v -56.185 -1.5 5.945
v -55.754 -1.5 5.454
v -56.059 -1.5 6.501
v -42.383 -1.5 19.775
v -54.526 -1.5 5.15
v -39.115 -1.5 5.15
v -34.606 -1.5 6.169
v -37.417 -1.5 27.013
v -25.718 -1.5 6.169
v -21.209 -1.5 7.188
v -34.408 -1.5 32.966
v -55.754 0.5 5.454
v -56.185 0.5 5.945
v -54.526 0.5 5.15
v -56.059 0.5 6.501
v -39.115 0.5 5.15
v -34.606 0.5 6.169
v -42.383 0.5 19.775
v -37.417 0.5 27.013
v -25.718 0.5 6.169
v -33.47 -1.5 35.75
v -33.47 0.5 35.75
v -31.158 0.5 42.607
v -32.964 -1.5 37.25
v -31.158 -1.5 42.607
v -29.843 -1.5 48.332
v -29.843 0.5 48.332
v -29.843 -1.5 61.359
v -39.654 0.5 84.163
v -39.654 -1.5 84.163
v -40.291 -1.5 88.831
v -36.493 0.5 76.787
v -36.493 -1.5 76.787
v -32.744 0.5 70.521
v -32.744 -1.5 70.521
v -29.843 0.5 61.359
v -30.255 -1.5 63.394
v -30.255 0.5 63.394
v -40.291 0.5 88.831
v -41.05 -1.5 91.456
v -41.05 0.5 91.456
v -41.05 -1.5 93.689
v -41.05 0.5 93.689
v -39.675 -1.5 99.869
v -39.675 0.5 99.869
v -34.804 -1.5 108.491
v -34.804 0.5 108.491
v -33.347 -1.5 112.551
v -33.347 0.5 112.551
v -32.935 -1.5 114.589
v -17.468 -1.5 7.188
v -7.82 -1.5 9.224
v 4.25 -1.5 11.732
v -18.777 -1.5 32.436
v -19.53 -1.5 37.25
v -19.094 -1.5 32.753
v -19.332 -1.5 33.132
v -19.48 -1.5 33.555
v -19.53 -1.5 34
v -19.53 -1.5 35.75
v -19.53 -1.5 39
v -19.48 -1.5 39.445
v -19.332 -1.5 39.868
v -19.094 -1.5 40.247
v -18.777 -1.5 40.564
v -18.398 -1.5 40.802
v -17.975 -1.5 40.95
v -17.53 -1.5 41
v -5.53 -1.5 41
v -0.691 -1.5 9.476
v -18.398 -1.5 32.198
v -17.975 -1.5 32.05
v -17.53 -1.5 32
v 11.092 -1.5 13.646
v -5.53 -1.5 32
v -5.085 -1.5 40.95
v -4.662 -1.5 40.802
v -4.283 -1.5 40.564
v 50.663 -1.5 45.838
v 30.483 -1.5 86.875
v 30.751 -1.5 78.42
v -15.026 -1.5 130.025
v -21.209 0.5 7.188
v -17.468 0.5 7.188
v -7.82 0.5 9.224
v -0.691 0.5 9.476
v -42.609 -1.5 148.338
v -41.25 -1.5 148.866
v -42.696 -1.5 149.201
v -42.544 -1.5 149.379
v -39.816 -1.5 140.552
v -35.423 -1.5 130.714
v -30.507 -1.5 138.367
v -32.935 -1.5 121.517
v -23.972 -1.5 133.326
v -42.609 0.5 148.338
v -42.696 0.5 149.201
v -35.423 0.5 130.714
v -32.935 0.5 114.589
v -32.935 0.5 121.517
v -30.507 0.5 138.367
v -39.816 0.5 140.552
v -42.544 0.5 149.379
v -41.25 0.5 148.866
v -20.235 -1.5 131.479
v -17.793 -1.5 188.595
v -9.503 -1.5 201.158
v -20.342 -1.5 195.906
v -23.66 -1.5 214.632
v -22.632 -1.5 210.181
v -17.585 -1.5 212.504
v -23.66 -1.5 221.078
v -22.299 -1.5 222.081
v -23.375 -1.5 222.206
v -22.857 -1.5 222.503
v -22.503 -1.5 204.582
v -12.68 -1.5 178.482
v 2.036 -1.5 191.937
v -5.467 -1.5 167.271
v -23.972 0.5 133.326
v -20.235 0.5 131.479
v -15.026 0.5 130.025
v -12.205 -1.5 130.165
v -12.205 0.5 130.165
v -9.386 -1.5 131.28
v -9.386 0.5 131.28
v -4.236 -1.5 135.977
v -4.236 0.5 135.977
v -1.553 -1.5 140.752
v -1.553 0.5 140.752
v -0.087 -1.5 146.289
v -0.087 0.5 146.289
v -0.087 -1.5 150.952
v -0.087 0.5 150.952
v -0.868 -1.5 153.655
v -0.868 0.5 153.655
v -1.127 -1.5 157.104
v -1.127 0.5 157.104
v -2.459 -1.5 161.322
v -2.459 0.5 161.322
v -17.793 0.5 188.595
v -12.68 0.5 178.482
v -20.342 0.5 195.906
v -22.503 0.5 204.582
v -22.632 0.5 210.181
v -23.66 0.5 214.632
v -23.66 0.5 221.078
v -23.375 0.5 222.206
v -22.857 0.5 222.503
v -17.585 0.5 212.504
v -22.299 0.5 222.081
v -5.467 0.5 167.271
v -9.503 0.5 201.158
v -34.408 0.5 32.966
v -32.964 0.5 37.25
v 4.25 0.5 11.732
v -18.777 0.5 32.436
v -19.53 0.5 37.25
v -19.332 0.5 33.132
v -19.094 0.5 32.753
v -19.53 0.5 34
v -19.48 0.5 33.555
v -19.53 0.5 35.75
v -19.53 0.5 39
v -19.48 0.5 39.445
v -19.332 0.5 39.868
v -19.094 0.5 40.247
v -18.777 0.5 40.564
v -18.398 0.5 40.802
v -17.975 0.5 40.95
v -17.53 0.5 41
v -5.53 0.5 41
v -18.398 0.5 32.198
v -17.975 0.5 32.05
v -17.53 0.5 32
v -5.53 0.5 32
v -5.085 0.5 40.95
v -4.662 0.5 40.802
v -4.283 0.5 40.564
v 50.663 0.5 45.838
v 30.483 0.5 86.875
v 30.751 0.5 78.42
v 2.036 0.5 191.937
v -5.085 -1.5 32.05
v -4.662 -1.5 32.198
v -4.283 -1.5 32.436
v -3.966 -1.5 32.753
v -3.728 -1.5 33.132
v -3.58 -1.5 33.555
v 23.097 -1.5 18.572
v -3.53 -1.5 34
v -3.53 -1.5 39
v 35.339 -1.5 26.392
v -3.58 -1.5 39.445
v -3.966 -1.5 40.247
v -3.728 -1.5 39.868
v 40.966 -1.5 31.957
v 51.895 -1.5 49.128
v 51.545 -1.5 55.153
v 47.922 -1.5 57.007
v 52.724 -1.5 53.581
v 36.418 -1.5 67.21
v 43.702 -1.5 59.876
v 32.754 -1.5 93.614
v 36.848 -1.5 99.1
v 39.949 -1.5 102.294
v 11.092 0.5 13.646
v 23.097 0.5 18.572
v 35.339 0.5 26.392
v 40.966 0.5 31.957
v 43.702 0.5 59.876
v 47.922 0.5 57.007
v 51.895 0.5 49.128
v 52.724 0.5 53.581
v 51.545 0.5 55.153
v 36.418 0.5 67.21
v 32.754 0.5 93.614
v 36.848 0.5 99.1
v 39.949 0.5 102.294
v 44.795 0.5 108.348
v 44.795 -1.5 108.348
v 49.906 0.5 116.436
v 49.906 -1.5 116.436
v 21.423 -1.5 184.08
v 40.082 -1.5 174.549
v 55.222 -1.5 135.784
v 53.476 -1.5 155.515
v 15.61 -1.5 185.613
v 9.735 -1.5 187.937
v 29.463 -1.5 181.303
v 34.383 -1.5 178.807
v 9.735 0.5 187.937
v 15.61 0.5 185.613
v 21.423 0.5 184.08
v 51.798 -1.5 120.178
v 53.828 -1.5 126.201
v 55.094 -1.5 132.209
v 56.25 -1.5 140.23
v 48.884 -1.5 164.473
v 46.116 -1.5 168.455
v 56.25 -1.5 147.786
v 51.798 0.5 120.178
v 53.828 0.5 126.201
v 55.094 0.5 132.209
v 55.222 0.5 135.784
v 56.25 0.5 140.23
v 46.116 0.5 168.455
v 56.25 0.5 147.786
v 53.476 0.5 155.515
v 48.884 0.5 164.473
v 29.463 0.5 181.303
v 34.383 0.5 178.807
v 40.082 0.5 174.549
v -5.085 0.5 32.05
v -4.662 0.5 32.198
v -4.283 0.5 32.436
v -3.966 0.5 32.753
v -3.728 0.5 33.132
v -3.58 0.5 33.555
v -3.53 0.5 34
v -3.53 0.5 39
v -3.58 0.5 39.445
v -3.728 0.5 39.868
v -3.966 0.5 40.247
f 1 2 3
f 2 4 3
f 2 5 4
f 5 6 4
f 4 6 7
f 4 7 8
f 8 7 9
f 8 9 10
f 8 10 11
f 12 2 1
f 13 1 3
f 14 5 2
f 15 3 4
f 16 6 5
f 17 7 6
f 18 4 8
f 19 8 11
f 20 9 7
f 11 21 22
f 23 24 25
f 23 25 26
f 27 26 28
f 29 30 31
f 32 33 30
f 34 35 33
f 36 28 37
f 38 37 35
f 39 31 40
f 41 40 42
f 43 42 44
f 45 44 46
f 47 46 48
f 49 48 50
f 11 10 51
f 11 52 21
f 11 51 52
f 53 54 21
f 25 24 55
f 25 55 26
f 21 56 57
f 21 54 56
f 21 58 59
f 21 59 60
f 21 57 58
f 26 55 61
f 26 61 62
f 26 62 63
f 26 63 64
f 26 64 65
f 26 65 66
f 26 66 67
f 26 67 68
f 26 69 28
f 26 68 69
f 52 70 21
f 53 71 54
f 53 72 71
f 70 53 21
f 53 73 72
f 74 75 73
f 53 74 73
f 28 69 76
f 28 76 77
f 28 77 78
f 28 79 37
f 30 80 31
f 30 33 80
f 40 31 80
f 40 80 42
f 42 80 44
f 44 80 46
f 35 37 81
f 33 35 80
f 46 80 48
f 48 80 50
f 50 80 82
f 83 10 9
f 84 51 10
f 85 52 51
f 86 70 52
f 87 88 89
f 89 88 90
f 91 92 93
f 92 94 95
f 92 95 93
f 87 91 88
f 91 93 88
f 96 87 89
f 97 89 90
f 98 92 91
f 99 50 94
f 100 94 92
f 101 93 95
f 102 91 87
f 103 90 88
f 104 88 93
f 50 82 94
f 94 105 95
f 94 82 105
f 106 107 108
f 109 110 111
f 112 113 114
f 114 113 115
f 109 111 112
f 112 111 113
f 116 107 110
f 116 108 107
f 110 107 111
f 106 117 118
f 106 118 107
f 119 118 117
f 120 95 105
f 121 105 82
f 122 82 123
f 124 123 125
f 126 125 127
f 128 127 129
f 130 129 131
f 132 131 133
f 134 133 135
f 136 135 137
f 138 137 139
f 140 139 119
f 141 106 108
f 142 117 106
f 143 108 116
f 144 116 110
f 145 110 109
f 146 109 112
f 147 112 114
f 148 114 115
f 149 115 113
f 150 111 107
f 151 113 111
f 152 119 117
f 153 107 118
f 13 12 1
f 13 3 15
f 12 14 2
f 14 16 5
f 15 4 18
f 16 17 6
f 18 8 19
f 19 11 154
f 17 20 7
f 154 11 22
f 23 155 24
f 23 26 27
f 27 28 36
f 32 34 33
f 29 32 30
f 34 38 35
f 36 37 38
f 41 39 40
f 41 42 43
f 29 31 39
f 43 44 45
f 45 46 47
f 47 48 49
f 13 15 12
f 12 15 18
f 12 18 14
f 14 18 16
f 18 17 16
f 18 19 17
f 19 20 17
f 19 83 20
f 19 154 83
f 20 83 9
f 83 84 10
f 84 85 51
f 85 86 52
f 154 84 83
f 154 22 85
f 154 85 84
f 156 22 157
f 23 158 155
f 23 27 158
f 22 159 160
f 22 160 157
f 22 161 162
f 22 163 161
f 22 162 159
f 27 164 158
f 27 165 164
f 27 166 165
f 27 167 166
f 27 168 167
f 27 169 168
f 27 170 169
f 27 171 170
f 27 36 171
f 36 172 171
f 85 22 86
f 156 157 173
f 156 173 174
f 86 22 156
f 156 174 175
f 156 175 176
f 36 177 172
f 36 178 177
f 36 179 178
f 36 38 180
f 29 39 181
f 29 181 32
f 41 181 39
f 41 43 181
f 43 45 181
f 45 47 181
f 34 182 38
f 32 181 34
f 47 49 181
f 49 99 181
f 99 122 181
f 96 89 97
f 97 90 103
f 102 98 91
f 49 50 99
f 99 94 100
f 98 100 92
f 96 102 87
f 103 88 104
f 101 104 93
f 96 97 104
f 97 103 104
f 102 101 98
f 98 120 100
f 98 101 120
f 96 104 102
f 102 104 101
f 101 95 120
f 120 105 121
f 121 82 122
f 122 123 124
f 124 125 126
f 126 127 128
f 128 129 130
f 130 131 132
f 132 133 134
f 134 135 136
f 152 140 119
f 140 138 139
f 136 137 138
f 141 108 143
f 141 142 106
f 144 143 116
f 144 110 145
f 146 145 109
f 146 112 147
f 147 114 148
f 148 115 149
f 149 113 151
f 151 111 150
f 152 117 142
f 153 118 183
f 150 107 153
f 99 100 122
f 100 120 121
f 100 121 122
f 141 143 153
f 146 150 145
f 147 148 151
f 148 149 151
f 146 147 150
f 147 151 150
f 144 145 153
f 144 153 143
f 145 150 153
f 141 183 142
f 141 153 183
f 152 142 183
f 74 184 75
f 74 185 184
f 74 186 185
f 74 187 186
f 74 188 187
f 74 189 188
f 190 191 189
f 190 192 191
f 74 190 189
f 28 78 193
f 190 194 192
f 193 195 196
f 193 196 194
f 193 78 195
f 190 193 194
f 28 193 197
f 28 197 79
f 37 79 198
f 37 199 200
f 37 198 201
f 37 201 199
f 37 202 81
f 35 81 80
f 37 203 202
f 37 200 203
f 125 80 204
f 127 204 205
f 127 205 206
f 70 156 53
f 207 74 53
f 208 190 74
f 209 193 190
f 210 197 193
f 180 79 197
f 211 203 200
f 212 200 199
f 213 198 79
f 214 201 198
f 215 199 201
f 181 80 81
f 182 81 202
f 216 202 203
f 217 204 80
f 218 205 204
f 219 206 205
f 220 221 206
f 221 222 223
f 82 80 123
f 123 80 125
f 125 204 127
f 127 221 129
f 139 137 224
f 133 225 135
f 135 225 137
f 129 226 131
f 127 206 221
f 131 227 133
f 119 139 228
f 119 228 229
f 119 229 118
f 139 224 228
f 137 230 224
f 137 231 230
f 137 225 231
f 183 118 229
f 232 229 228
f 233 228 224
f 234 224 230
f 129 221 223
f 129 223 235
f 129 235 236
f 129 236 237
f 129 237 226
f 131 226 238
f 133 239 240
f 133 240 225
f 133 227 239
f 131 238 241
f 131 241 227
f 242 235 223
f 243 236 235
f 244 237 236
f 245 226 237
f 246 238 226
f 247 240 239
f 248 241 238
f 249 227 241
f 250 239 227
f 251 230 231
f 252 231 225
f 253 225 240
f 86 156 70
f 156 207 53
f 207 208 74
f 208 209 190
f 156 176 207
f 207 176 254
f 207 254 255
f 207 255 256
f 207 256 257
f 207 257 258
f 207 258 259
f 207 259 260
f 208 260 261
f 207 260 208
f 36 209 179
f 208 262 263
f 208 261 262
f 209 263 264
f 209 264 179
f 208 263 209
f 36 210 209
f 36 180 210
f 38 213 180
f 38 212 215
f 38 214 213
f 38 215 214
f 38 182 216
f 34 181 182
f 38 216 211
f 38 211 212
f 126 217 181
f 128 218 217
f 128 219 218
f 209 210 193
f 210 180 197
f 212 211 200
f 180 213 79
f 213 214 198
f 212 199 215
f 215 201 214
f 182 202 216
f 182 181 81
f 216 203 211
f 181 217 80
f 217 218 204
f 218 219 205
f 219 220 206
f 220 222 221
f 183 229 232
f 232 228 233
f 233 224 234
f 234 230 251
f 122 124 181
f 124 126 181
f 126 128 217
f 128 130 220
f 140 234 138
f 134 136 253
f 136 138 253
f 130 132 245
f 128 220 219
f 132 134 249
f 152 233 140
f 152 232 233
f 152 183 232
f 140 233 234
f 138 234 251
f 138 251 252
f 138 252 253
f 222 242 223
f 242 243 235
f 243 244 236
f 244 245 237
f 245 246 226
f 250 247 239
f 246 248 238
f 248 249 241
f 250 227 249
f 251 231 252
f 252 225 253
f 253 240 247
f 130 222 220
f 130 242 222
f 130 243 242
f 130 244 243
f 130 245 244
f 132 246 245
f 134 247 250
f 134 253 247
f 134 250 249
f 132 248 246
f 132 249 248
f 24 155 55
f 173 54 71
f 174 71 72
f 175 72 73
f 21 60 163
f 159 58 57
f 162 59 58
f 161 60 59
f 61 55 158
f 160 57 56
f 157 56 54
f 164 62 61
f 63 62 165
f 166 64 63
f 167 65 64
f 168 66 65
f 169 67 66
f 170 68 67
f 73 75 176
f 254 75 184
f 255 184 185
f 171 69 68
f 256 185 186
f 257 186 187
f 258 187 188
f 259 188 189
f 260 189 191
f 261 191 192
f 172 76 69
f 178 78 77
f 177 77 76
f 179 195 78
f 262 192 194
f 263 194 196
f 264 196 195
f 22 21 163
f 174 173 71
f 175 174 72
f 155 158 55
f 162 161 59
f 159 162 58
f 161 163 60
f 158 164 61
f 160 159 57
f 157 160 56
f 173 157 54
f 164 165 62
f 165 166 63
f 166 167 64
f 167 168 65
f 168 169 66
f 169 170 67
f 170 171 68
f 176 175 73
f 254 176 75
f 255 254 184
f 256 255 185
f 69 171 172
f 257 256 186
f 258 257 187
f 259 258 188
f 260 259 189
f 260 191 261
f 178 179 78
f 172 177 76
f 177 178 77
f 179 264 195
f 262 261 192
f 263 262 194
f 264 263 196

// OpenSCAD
// file: shape_pts.scad
// Right Flame (FR) traced from images/generate_an_image_of_this.png via octolamp-lamp-base.
// Exterior housing: 120.00 x 225.00 mm (114.00 x 219.00 mm interior cavity + 3.00 mm Octolamp wall).
// Matches the 1.5x flame-to-letter height proportion next to the 100 x 150 mm Engenesis letters.

shape_w = 114.00;
shape_h = 219.00;
rec_chip_x = -12.00;
rec_chip_z = 62.00;
rec_cable_x = -12.00;
rec_ziptie_z = 33.50;
rec_keyhole_z = 19.50;
rec_slit_dir = -1;
rec_snap_top_x = -14.50;
rec_snap_top_z = 126.40;
rec_snap_bot_x = -42.00;
rec_clip_x = -38.00;
rec_pillars = [[18.0, 88.0], [12.0, 44.0], [26.0, 128.0], [12.0, 164.0]];

shape_pts = [[-57.000,1.338],[-56.163,0.382],[-54.617,0.000],[-39.031,0.000],[-34.522,1.019],[-25.634,1.019],[-21.125,2.038],[-17.390,2.038],[-7.729,4.077],[-0.515,4.332],[4.508,6.625],[11.336,8.536],[23.444,13.504],[35.810,21.403],[41.542,27.072],[51.332,41.086],[52.620,44.526],[53.522,49.367],[52.041,51.342],[48.305,53.253],[44.183,56.056],[37.034,63.254],[31.495,74.210],[31.237,82.364],[33.427,88.861],[37.420,94.212],[40.512,97.397],[45.407,103.512],[50.559,111.666],[52.492,115.488],[54.553,121.603],[55.841,127.718],[55.969,131.285],[57.000,135.744],[57.000,143.516],[54.166,151.414],[49.529,160.460],[46.695,164.537],[40.576,170.716],[34.780,175.047],[29.756,177.595],[21.641,180.398],[15.844,181.927],[10.047,184.220],[2.447,188.169],[-8.953,197.278],[-16.939,208.490],[-21.705,218.172],[-22.800,219.000],[-24.024,218.299],[-24.410,216.771],[-24.410,210.146],[-23.380,205.687],[-23.251,200.081],[-21.061,191.291],[-18.485,183.901],[-13.332,173.709],[-6.119,162.498],[-3.156,156.638],[-1.868,152.561],[-1.610,149.121],[-0.837,146.446],[-0.837,141.987],[-2.254,136.636],[-4.831,132.050],[-9.790,127.527],[-12.366,126.508],[-14.942,126.380],[-19.966,127.782],[-23.573,129.565],[-30.014,134.534],[-40.834,145.108],[-42.766,145.873],[-43.475,145.045],[-43.346,143.771],[-40.512,135.872],[-36.132,126.062],[-33.685,117.017],[-33.685,110.264],[-34.071,108.353],[-35.488,104.404],[-40.383,95.741],[-41.800,89.371],[-41.800,86.950],[-41.027,84.275],[-40.383,79.561],[-37.163,72.045],[-33.427,65.802],[-30.980,58.795],[-30.593,56.884],[-30.593,44.017],[-31.881,38.411],[-35.102,28.856],[-38.064,22.996],[-42.959,15.861],[-56.742,2.484]];
shape_paths = [[0, 1, 2, 3, 4, 5, 6, 7, 8, 9, 10, 11, 12, 13, 14, 15, 16, 17, 18, 19, 20, 21, 22, 23, 24, 25, 26, 27, 28, 29, 30, 31, 32, 33, 34, 35, 36, 37, 38, 39, 40, 41, 42, 43, 44, 45, 46, 47, 48, 49, 50, 51, 52, 53, 54, 55, 56, 57, 58, 59, 60, 61, 62, 63, 64, 65, 66, 67, 68, 69, 70, 71, 72, 73, 74, 75, 76, 77, 78, 79, 80, 81, 82, 83, 84, 85, 86, 87, 88, 89, 90, 91, 92, 93, 94, 95]];

diffuser_shape_pts = [[-57.000,1.338],[-56.163,0.382],[-54.617,0.000],[-39.031,0.000],[-34.522,1.019],[-25.634,1.019],[-21.125,2.038],[-17.390,2.038],[-7.729,4.077],[-0.515,4.332],[4.508,6.625],[11.336,8.536],[23.444,13.504],[35.810,21.403],[41.542,27.072],[51.332,41.086],[52.620,44.526],[53.522,49.367],[52.041,51.342],[48.305,53.253],[44.183,56.056],[37.034,63.254],[31.495,74.210],[31.237,82.364],[33.427,88.861],[37.420,94.212],[40.512,97.397],[45.407,103.512],[50.559,111.666],[52.492,115.488],[54.553,121.603],[55.841,127.718],[55.969,131.285],[57.000,135.744],[57.000,143.516],[54.166,151.414],[49.529,160.460],[46.695,164.537],[40.576,170.716],[34.780,175.047],[29.756,177.595],[21.641,180.398],[15.844,181.927],[10.047,184.220],[2.447,188.169],[-8.953,197.278],[-16.939,208.490],[-21.705,218.172],[-22.800,219.000],[-24.024,218.299],[-24.410,216.771],[-24.410,210.146],[-23.380,205.687],[-23.251,200.081],[-21.061,191.291],[-18.485,183.901],[-13.332,173.709],[-6.119,162.498],[-3.156,156.638],[-1.868,152.561],[-1.610,149.121],[-0.837,146.446],[-0.837,141.987],[-2.254,136.636],[-4.831,132.050],[-9.790,127.527],[-12.366,126.508],[-14.942,126.380],[-19.966,127.782],[-23.573,129.565],[-30.014,134.534],[-40.834,145.108],[-42.766,145.873],[-43.475,145.045],[-43.346,143.771],[-40.512,135.872],[-36.132,126.062],[-33.685,117.017],[-33.685,110.264],[-34.071,108.353],[-35.488,104.404],[-40.383,95.741],[-41.800,89.371],[-41.800,86.950],[-41.027,84.275],[-40.383,79.561],[-37.163,72.045],[-33.427,65.802],[-30.980,58.795],[-30.593,56.884],[-30.593,44.017],[-31.881,38.411],[-35.102,28.856],[-38.064,22.996],[-42.959,15.861],[-56.742,2.484]];
diffuser_shape_paths = [[0, 1, 2, 3, 4, 5, 6, 7, 8, 9, 10, 11, 12, 13, 14, 15, 16, 17, 18, 19, 20, 21, 22, 23, 24, 25, 26, 27, 28, 29, 30, 31, 32, 33, 34, 35, 36, 37, 38, 39, 40, 41, 42, 43, 44, 45, 46, 47, 48, 49, 50, 51, 52, 53, 54, 55, 56, 57, 58, 59, 60, 61, 62, 63, 64, 65, 66, 67, 68, 69, 70, 71, 72, 73, 74, 75, 76, 77, 78, 79, 80, 81, 82, 83, 84, 85, 86, 87, 88, 89, 90, 91, 92, 93, 94, 95]];

module shape_2d(pts = shape_pts) {
    polygon(points = pts, paths = shape_paths);
}

module diffuser_shape_2d(pts = diffuser_shape_pts) {
    polygon(points = pts, paths = diffuser_shape_paths);
}
// main file
// Right Flame ("FR") ? Flanks Top E on Right ? internal white reflector plate (2.00 mm thick, aligned LED-strip conduit pockets + entry slits)
// Opens and exports standalone in OpenSCAD / OpenSCAD.js.

use <lamp_core.scad>

render_lamp_part("reflector");
